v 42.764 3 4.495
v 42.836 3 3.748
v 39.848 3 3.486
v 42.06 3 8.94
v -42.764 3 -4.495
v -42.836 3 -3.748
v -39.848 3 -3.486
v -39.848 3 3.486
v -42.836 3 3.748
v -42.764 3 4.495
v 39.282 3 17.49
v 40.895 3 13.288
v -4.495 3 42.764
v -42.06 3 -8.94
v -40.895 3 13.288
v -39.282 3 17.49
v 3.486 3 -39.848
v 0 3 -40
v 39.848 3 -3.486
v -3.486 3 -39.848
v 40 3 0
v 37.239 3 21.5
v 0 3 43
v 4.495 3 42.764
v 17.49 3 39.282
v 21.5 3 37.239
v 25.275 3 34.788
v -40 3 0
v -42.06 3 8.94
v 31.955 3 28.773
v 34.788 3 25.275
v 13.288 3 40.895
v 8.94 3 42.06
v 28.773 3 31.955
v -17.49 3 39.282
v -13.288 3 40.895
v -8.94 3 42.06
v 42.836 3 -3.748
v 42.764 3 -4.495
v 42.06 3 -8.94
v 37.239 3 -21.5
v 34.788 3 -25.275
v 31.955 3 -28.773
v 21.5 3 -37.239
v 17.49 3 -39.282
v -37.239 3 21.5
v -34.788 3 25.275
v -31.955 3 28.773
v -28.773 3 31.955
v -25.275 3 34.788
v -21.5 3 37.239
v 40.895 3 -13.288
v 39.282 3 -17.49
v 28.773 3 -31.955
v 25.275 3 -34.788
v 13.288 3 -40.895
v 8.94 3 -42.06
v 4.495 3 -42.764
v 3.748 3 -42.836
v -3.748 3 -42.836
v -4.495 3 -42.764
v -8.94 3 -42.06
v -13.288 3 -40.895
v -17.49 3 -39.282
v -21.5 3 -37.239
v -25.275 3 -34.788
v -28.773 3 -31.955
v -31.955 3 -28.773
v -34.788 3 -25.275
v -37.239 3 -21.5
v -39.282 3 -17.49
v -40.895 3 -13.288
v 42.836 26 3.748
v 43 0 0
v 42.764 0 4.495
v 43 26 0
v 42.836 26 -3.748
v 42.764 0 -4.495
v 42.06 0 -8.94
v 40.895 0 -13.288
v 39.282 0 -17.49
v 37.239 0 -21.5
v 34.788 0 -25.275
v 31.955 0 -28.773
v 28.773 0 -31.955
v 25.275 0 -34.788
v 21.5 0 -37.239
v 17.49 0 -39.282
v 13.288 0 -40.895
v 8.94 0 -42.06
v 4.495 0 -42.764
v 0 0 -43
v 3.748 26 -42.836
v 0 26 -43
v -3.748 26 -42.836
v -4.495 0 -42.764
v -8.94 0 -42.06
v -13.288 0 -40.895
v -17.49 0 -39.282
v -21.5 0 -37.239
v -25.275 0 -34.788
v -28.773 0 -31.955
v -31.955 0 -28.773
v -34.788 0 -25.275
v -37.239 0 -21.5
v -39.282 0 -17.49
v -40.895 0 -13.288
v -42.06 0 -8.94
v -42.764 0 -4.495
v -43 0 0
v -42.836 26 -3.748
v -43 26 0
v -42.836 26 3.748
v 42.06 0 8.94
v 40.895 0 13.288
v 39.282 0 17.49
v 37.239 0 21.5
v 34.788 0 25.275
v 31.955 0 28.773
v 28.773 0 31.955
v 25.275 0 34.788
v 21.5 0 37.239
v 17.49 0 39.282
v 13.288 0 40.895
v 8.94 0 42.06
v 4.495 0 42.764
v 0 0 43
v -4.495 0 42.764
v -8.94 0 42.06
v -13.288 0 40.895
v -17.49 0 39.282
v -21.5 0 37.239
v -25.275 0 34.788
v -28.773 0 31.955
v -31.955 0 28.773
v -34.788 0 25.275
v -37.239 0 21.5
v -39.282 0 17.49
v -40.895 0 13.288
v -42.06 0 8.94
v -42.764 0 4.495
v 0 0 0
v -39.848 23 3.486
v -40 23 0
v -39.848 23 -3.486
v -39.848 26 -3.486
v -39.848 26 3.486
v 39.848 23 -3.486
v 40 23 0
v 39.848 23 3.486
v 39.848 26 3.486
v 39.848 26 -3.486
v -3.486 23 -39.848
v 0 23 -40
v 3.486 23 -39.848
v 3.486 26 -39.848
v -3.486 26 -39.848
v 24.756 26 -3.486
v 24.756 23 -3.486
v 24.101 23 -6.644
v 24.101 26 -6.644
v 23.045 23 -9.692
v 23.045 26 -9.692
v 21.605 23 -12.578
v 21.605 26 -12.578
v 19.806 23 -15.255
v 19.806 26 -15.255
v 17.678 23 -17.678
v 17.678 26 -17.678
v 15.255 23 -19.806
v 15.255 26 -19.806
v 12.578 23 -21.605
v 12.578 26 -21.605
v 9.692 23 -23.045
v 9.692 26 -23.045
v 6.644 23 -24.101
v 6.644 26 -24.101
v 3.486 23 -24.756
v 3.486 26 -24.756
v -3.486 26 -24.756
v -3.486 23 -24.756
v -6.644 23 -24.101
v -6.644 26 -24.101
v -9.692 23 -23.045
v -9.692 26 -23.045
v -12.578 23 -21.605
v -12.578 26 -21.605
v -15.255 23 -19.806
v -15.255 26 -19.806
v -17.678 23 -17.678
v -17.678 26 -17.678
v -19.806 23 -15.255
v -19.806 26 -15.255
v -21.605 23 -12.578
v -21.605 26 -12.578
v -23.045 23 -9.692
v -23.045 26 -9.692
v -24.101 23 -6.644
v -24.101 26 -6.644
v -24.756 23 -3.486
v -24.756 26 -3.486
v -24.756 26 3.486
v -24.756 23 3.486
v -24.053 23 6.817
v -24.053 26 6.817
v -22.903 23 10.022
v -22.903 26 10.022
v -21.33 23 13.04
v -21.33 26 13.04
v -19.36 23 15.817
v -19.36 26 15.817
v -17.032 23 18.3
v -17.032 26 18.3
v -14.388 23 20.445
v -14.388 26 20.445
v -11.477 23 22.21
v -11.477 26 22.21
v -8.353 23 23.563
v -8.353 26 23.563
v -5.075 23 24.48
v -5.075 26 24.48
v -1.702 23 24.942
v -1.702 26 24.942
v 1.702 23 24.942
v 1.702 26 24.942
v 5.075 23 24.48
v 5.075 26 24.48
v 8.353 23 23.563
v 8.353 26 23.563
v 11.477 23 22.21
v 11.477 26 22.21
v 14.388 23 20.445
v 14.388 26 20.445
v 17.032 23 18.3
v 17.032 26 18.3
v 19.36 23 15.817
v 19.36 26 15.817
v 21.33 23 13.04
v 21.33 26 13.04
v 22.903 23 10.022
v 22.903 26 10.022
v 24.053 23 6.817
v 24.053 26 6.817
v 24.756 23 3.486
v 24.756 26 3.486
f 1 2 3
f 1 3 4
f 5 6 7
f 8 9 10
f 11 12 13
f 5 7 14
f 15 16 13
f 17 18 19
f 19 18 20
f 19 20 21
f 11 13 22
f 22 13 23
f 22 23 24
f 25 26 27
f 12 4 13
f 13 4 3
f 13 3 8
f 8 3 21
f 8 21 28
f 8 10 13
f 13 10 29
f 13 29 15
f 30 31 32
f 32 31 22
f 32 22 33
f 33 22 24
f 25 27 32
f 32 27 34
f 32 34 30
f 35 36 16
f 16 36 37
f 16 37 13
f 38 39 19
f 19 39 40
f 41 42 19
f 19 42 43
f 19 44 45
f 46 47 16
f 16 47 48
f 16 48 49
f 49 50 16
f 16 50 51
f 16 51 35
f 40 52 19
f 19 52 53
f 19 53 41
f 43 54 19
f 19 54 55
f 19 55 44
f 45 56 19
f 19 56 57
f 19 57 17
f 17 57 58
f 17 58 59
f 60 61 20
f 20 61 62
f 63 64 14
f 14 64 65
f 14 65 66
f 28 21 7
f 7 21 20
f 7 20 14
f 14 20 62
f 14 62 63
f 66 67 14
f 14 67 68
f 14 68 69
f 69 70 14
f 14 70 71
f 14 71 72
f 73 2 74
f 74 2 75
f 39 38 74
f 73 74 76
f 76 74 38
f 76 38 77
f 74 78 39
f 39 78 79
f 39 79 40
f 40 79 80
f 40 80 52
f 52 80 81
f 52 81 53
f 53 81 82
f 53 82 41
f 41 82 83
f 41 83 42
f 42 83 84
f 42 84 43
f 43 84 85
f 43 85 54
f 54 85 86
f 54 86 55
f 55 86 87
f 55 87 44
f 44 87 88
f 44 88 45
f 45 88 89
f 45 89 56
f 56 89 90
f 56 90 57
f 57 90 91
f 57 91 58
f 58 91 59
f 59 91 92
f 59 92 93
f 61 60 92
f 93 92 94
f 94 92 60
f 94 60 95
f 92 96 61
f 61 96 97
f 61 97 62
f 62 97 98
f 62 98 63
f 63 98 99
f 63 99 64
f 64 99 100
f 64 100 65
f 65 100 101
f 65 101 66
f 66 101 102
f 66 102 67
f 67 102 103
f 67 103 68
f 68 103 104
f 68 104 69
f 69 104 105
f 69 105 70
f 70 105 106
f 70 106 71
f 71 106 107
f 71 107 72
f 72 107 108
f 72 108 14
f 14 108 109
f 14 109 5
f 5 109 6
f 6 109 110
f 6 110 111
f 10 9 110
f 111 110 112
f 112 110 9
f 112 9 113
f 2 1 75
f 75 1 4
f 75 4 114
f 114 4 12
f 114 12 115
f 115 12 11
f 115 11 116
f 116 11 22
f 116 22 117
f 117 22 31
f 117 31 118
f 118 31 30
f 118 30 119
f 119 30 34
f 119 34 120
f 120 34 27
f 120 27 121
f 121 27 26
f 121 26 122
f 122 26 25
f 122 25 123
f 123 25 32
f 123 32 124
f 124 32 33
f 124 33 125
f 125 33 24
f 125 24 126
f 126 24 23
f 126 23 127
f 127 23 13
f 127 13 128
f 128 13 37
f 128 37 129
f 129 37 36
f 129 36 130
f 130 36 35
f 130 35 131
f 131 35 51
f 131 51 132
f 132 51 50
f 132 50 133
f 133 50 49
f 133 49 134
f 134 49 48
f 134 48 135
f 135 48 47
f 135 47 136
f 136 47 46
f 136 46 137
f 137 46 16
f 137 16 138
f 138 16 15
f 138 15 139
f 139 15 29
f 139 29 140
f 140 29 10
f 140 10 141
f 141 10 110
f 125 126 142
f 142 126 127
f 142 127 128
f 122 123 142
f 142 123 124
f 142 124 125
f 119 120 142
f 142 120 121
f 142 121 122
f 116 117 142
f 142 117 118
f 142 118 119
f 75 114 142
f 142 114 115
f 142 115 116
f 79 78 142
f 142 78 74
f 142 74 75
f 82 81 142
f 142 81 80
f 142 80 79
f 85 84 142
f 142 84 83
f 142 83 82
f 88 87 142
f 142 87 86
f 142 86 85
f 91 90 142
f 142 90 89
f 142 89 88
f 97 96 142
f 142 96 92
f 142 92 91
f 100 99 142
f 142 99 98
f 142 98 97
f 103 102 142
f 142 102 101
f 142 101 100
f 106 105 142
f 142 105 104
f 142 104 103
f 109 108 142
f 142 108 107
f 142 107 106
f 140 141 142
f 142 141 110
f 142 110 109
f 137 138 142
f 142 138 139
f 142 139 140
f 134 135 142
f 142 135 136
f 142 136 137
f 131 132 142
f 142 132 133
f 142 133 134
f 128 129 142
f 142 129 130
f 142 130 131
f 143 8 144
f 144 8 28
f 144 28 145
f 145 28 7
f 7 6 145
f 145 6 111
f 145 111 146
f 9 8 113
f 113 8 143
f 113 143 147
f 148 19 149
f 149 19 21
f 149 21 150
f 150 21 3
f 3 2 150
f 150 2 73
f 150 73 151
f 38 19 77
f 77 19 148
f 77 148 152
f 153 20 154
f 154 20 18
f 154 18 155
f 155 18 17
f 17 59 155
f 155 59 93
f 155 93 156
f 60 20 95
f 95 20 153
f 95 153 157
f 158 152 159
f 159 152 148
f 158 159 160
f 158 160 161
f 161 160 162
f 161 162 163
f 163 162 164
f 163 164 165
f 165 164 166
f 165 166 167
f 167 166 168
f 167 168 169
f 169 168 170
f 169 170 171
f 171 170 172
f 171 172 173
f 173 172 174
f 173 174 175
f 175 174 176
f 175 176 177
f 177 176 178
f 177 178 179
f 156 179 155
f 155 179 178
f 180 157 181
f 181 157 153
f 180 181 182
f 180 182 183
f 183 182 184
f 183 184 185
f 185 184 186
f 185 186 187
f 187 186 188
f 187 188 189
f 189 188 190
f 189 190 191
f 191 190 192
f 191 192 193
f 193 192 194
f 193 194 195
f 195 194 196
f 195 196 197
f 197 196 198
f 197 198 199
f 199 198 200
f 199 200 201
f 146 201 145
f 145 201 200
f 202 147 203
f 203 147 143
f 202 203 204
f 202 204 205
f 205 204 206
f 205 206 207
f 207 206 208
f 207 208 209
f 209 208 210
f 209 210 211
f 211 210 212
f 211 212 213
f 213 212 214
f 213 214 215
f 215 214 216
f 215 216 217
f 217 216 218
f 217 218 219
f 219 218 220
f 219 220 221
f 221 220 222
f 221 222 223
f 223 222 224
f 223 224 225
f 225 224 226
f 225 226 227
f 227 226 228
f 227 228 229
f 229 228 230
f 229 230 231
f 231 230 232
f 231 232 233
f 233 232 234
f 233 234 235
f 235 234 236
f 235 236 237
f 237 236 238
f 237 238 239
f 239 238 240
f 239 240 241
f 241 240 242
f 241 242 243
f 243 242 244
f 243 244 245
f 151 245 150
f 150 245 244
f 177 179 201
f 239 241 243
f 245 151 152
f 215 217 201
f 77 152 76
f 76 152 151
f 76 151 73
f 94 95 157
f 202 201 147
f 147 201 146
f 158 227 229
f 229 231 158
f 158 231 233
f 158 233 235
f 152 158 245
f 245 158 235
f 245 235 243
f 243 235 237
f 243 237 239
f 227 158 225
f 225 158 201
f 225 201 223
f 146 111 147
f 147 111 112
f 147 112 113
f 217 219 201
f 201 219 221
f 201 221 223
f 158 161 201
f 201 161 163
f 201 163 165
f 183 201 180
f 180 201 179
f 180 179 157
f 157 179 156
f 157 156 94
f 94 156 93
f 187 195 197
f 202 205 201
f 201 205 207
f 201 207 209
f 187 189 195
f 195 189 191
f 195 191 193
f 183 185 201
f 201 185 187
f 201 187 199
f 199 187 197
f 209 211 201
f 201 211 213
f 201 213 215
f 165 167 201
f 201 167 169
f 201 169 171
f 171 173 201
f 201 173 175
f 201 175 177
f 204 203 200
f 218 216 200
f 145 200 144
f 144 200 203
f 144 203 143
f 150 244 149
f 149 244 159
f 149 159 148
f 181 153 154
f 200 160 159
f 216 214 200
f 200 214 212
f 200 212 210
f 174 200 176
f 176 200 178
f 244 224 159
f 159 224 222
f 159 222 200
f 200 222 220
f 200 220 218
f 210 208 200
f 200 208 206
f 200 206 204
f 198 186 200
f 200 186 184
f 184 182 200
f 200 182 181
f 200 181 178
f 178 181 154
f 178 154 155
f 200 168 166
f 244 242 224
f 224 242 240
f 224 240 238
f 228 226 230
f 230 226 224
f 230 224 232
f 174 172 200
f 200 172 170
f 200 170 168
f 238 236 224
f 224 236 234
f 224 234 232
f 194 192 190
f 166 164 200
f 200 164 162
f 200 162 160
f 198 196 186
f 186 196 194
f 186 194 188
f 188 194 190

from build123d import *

# Parameters (mm, degrees)
SKETCH1_R           = 43
BOSS_EXTRUDE1_DEPTH = 3
BOSS_EXTRUDE2_DEPTH = 20
BOSS_EXTRUDE3_DEPTH = 3


with BuildPart() as part:
    # Sketch1 → Boss-Extrude1 (new body)
    with BuildSketch(Plane(origin=(0, 0, 0), x_dir=(1, 0, 0), z_dir=(0, 1, 0))):
        with Locations(Location((0, 0, 0), (0, 0, 270))):
            Circle(SKETCH1_R)
    extrude(amount=BOSS_EXTRUDE1_DEPTH)

    # Sketch2 → Boss-Extrude2 (add)
    with BuildSketch(Plane(origin=(0, 3, 0), x_dir=(1, 0, 0), z_dir=(0, 1, 0))):
        with BuildLine():
            Line((-43, 0), (-39.99995453, 0))
            ThreePointArc((-39.99995453, 0), (-39.961883436, 1.744773511), (-39.847742626, 3.486225747))
            Line((-39.847742626, 3.486225747), (-42.836372018, 3.747696938))
            ThreePointArc((-42.836372018, 3.747696938), (-42.959073528, 1.875633657), (-43, 0))
        make_face()
        with BuildLine():
            ThreePointArc((-39.847742626, -3.486225747), (-39.961883436, -1.744773511), (-39.99995453, 0))
            Line((-39.99995453, 0), (-43, 0))
            ThreePointArc((-43, 0), (-42.959073528, -1.875633657), (-42.836372018, -3.747696938))
            Line((-42.836372018, -3.747696938), (-39.847742626, -3.486225747))
        make_face()
        with BuildLine():
            ThreePointArc((39.847742626, 3.486225747), (39.961883436, 1.744773511), (39.99995453, 0))
            Line((39.99995453, 0), (43, 0))
            ThreePointArc((43, 0), (42.959073528, 1.875633657), (42.836372018, 3.747696938))
            Line((42.836372018, 3.747696938), (39.847742626, 3.486225747))
        make_face()
        with BuildLine():
            Line((43, 0), (39.99995453, 0))
            ThreePointArc((39.99995453, 0), (39.961883436, -1.744773511), (39.847742626, -3.486225747))
            Line((39.847742626, -3.486225747), (42.836372018, -3.747696938))
            ThreePointArc((42.836372018, -3.747696938), (42.959073528, -1.875633657), (43, 0))
        make_face()
        with BuildLine():
            Line((0, 43), (0, 39.99995453))
            ThreePointArc((0, 39.99995453), (1.744773511, 39.961883436), (3.486225747, 39.847742626))
            Line((3.486225747, 39.847742626), (3.747696938, 42.836372018))
            ThreePointArc((3.747696938, 42.836372018), (1.875633657, 42.959073528), (0, 43))
        make_face()
        with BuildLine():
            ThreePointArc((-3.486225747, 39.847742626), (-1.744773511, 39.961883436), (0, 39.99995453))
            Line((0, 39.99995453), (0, 43))
            ThreePointArc((0, 43), (-1.875633657, 42.959073528), (-3.747696938, 42.836372018))
            Line((-3.747696938, 42.836372018), (-3.486225747, 39.847742626))
        make_face()
    extrude(amount=BOSS_EXTRUDE2_DEPTH)

    # Sketch3 → Boss-Extrude3 (add)
    with BuildSketch(Plane(origin=(0, 23, 0), x_dir=(1, 0, 0), z_dir=(0, 1, 0))):
        with BuildLine():
            Line((-42.836372018, -3.747696938), (-39.847742626, -3.486225747))
            Line((-39.847742626, -3.486225747), (-24.755731256, -3.486225747))
            ThreePointArc((-24.755731256, -3.486225747), (0, -25), (24.755731256, -3.486225747))
            Line((24.755731256, -3.486225747), (39.847742626, -3.486225747))
            Line((39.847742626, -3.486225747), (42.836372018, -3.747696938))
            ThreePointArc((42.836372018, -3.747696938), (43, 0), (42.836372018, 3.747696938))
            Line((42.836372018, 3.747696938), (39.847742626, 3.486225747))
            Line((39.847742626, 3.486225747), (24.755731256, 3.486225747))
            ThreePointArc((24.755731256, 3.486225747), (17.67766953, 17.67766953), (3.486225747, 24.755731256))
            Line((3.486225747, 24.755731256), (3.486225747, 39.847742626))
            Line((3.486225747, 39.847742626), (3.747696938, 42.836372018))
            ThreePointArc((3.747696938, 42.836372018), (0, 43), (-3.747696938, 42.836372018))
            Line((-3.747696938, 42.836372018), (-3.486225747, 39.847742626))
            Line((-3.486225747, 39.847742626), (-3.486225747, 24.755731256))
            ThreePointArc((-3.486225747, 24.755731256), (-17.67766953, 17.67766953), (-24.755731256, 3.486225747))
            Line((-24.755731256, 3.486225747), (-39.847742626, 3.486225747))
            Line((-39.847742626, 3.486225747), (-42.836372018, 3.747696938))
            ThreePointArc((-42.836372018, 3.747696938), (-43, 0), (-42.836372018, -3.747696938))
        make_face()
    extrude(amount=BOSS_EXTRUDE3_DEPTH)


solid = part.part
